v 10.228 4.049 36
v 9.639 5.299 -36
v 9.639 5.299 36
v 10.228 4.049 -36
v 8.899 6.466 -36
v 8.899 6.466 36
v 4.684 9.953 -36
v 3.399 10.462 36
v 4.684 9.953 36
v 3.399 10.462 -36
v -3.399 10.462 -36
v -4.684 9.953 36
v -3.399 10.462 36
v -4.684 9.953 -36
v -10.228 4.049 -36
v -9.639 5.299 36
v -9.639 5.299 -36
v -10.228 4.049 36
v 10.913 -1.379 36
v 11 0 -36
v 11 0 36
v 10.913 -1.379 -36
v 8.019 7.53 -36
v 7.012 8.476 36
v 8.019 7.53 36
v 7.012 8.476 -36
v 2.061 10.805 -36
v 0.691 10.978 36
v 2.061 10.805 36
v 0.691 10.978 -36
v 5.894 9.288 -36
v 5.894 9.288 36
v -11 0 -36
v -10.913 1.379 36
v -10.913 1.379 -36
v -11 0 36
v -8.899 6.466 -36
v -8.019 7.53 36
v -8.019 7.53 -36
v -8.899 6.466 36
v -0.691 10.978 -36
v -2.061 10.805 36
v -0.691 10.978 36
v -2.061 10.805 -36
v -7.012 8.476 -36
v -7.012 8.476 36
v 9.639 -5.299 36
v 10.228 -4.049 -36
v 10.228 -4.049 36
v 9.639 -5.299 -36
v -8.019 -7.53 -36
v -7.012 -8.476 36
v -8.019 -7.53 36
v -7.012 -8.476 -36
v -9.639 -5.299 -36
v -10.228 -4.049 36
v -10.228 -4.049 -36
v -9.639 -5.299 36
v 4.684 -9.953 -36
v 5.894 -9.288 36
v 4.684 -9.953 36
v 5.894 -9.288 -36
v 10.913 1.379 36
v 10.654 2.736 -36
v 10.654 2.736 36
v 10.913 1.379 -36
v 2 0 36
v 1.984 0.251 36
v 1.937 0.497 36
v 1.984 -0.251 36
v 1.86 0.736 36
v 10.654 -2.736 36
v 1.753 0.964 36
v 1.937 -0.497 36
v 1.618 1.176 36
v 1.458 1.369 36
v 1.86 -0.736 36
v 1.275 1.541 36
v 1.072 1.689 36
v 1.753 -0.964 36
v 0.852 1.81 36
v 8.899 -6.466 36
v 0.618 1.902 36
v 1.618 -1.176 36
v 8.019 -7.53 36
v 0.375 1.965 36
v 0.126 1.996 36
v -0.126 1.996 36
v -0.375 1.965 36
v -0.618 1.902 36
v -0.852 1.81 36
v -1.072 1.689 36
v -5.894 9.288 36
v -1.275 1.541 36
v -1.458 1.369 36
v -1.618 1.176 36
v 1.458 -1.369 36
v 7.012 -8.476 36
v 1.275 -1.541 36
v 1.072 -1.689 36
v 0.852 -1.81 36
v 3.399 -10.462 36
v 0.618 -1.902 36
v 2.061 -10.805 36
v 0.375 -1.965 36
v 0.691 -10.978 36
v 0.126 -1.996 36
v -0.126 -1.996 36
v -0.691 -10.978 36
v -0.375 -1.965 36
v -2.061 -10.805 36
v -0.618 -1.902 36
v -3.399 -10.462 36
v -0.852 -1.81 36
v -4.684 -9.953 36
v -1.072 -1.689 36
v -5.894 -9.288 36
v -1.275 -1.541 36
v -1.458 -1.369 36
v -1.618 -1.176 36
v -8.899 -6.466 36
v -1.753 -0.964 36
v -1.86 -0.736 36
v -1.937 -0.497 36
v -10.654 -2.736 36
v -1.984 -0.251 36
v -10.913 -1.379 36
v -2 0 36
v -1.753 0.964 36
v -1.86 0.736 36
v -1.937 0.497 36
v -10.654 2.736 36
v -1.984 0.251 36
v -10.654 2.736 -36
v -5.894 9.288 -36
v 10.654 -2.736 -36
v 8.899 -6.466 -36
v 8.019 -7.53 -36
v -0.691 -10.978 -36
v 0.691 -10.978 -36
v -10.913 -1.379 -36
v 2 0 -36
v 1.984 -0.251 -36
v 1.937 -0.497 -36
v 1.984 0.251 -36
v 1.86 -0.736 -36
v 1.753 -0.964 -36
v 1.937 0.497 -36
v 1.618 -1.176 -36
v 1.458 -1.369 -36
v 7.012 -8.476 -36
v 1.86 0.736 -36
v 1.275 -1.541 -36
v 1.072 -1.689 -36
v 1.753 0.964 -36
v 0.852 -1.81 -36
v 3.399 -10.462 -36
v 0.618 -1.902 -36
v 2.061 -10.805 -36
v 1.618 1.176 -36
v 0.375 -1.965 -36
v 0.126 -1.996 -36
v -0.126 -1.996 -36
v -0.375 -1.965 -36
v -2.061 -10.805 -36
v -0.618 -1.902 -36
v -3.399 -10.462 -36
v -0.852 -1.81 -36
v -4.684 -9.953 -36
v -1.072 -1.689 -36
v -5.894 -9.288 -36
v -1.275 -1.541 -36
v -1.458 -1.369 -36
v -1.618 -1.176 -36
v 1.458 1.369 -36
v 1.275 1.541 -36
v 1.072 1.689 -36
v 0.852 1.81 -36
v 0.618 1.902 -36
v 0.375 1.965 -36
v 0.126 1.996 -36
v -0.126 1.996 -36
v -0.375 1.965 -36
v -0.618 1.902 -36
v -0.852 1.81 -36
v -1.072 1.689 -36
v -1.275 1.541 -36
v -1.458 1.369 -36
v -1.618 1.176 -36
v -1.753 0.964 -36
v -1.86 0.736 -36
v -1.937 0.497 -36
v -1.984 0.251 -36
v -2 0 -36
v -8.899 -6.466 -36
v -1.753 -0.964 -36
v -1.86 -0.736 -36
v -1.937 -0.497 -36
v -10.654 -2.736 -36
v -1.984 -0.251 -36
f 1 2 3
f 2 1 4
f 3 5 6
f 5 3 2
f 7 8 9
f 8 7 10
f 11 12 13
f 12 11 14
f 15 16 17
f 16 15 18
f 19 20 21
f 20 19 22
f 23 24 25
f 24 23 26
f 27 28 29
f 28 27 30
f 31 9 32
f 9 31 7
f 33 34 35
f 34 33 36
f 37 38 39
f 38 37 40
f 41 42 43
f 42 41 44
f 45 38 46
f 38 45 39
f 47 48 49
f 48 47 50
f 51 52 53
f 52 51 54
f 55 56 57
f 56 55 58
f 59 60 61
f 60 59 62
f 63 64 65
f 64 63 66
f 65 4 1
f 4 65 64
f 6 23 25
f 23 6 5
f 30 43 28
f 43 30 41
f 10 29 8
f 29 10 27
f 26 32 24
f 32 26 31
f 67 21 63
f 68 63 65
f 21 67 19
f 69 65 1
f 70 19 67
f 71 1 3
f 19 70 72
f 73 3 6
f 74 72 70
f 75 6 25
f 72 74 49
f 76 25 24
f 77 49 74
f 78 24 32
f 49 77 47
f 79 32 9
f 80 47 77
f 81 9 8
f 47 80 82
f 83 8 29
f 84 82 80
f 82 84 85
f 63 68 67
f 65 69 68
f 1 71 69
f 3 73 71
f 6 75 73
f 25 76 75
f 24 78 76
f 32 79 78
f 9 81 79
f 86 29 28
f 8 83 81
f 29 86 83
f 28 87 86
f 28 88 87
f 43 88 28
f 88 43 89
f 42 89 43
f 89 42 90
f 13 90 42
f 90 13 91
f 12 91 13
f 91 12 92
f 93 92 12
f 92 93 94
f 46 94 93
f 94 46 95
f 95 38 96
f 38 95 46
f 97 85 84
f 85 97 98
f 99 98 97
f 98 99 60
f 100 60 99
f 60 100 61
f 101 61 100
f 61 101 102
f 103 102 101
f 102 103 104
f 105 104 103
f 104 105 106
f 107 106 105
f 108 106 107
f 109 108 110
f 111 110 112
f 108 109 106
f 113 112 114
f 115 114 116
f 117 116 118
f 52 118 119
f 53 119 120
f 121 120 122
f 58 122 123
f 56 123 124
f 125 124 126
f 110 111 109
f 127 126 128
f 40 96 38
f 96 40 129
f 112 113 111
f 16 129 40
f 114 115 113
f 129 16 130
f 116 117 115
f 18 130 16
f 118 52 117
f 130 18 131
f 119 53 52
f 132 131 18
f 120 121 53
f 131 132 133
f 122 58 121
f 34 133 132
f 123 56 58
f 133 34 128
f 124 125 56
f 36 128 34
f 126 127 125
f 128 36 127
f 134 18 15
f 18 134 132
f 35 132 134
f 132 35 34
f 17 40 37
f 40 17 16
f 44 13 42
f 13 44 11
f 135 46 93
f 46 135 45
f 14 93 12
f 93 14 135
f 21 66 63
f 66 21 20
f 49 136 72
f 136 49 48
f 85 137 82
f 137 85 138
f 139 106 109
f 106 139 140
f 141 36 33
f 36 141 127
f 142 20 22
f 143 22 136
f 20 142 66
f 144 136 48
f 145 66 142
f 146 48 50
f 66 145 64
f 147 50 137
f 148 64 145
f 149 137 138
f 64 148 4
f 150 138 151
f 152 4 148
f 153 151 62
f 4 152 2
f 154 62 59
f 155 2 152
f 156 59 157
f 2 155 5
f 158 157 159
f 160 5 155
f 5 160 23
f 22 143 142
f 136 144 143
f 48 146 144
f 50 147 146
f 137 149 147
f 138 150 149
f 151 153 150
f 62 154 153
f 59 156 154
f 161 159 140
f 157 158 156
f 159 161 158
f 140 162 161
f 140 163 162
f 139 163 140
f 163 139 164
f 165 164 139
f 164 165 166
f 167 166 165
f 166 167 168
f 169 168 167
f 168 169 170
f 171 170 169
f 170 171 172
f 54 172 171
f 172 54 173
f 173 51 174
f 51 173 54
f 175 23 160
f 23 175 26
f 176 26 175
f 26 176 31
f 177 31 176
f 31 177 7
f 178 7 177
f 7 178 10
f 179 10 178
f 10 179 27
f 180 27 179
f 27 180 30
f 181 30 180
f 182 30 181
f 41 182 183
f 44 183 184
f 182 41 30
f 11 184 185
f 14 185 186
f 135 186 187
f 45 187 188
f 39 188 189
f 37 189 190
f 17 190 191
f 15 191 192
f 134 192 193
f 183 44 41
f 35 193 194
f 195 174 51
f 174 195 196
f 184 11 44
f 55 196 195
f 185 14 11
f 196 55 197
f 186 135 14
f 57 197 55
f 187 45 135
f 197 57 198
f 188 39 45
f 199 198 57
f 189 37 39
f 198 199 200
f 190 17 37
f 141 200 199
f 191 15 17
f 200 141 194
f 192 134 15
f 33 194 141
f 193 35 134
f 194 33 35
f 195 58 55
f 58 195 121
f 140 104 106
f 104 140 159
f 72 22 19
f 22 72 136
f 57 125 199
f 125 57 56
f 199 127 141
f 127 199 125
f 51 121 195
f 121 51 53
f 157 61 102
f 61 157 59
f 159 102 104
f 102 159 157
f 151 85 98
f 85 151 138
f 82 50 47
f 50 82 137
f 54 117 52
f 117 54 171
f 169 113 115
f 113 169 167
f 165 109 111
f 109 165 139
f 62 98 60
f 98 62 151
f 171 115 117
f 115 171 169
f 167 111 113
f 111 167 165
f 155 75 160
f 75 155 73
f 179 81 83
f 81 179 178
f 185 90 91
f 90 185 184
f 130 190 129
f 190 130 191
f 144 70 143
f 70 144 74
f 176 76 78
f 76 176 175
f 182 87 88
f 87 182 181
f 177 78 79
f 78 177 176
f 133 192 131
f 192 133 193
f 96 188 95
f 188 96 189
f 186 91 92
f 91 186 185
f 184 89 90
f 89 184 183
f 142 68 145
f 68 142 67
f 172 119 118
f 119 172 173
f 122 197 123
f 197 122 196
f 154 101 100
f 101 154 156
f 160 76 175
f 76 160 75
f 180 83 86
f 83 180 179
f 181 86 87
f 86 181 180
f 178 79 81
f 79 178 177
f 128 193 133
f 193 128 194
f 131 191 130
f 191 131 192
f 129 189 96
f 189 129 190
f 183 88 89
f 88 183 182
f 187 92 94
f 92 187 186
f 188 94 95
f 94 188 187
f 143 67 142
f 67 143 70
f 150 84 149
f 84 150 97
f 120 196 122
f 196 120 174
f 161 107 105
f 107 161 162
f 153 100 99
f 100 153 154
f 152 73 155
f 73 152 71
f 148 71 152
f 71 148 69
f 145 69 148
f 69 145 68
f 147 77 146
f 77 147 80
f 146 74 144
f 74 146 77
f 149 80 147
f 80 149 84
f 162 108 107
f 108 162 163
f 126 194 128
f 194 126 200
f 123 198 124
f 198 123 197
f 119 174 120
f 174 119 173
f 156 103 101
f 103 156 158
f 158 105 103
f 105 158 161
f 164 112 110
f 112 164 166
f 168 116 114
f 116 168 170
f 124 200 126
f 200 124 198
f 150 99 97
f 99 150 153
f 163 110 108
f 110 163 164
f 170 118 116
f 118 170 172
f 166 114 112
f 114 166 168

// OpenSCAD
$fn = 50;


difference() {
	union() {
		translate(v = [0, 0, -36.0000000000]) {
			cylinder(h = 72, r = 11.0000000000);
		}
	}
	union() {
		translate(v = [0, 0, -100.0000000000]) {
			cylinder(h = 200, r = 2);
		}
	}
}
